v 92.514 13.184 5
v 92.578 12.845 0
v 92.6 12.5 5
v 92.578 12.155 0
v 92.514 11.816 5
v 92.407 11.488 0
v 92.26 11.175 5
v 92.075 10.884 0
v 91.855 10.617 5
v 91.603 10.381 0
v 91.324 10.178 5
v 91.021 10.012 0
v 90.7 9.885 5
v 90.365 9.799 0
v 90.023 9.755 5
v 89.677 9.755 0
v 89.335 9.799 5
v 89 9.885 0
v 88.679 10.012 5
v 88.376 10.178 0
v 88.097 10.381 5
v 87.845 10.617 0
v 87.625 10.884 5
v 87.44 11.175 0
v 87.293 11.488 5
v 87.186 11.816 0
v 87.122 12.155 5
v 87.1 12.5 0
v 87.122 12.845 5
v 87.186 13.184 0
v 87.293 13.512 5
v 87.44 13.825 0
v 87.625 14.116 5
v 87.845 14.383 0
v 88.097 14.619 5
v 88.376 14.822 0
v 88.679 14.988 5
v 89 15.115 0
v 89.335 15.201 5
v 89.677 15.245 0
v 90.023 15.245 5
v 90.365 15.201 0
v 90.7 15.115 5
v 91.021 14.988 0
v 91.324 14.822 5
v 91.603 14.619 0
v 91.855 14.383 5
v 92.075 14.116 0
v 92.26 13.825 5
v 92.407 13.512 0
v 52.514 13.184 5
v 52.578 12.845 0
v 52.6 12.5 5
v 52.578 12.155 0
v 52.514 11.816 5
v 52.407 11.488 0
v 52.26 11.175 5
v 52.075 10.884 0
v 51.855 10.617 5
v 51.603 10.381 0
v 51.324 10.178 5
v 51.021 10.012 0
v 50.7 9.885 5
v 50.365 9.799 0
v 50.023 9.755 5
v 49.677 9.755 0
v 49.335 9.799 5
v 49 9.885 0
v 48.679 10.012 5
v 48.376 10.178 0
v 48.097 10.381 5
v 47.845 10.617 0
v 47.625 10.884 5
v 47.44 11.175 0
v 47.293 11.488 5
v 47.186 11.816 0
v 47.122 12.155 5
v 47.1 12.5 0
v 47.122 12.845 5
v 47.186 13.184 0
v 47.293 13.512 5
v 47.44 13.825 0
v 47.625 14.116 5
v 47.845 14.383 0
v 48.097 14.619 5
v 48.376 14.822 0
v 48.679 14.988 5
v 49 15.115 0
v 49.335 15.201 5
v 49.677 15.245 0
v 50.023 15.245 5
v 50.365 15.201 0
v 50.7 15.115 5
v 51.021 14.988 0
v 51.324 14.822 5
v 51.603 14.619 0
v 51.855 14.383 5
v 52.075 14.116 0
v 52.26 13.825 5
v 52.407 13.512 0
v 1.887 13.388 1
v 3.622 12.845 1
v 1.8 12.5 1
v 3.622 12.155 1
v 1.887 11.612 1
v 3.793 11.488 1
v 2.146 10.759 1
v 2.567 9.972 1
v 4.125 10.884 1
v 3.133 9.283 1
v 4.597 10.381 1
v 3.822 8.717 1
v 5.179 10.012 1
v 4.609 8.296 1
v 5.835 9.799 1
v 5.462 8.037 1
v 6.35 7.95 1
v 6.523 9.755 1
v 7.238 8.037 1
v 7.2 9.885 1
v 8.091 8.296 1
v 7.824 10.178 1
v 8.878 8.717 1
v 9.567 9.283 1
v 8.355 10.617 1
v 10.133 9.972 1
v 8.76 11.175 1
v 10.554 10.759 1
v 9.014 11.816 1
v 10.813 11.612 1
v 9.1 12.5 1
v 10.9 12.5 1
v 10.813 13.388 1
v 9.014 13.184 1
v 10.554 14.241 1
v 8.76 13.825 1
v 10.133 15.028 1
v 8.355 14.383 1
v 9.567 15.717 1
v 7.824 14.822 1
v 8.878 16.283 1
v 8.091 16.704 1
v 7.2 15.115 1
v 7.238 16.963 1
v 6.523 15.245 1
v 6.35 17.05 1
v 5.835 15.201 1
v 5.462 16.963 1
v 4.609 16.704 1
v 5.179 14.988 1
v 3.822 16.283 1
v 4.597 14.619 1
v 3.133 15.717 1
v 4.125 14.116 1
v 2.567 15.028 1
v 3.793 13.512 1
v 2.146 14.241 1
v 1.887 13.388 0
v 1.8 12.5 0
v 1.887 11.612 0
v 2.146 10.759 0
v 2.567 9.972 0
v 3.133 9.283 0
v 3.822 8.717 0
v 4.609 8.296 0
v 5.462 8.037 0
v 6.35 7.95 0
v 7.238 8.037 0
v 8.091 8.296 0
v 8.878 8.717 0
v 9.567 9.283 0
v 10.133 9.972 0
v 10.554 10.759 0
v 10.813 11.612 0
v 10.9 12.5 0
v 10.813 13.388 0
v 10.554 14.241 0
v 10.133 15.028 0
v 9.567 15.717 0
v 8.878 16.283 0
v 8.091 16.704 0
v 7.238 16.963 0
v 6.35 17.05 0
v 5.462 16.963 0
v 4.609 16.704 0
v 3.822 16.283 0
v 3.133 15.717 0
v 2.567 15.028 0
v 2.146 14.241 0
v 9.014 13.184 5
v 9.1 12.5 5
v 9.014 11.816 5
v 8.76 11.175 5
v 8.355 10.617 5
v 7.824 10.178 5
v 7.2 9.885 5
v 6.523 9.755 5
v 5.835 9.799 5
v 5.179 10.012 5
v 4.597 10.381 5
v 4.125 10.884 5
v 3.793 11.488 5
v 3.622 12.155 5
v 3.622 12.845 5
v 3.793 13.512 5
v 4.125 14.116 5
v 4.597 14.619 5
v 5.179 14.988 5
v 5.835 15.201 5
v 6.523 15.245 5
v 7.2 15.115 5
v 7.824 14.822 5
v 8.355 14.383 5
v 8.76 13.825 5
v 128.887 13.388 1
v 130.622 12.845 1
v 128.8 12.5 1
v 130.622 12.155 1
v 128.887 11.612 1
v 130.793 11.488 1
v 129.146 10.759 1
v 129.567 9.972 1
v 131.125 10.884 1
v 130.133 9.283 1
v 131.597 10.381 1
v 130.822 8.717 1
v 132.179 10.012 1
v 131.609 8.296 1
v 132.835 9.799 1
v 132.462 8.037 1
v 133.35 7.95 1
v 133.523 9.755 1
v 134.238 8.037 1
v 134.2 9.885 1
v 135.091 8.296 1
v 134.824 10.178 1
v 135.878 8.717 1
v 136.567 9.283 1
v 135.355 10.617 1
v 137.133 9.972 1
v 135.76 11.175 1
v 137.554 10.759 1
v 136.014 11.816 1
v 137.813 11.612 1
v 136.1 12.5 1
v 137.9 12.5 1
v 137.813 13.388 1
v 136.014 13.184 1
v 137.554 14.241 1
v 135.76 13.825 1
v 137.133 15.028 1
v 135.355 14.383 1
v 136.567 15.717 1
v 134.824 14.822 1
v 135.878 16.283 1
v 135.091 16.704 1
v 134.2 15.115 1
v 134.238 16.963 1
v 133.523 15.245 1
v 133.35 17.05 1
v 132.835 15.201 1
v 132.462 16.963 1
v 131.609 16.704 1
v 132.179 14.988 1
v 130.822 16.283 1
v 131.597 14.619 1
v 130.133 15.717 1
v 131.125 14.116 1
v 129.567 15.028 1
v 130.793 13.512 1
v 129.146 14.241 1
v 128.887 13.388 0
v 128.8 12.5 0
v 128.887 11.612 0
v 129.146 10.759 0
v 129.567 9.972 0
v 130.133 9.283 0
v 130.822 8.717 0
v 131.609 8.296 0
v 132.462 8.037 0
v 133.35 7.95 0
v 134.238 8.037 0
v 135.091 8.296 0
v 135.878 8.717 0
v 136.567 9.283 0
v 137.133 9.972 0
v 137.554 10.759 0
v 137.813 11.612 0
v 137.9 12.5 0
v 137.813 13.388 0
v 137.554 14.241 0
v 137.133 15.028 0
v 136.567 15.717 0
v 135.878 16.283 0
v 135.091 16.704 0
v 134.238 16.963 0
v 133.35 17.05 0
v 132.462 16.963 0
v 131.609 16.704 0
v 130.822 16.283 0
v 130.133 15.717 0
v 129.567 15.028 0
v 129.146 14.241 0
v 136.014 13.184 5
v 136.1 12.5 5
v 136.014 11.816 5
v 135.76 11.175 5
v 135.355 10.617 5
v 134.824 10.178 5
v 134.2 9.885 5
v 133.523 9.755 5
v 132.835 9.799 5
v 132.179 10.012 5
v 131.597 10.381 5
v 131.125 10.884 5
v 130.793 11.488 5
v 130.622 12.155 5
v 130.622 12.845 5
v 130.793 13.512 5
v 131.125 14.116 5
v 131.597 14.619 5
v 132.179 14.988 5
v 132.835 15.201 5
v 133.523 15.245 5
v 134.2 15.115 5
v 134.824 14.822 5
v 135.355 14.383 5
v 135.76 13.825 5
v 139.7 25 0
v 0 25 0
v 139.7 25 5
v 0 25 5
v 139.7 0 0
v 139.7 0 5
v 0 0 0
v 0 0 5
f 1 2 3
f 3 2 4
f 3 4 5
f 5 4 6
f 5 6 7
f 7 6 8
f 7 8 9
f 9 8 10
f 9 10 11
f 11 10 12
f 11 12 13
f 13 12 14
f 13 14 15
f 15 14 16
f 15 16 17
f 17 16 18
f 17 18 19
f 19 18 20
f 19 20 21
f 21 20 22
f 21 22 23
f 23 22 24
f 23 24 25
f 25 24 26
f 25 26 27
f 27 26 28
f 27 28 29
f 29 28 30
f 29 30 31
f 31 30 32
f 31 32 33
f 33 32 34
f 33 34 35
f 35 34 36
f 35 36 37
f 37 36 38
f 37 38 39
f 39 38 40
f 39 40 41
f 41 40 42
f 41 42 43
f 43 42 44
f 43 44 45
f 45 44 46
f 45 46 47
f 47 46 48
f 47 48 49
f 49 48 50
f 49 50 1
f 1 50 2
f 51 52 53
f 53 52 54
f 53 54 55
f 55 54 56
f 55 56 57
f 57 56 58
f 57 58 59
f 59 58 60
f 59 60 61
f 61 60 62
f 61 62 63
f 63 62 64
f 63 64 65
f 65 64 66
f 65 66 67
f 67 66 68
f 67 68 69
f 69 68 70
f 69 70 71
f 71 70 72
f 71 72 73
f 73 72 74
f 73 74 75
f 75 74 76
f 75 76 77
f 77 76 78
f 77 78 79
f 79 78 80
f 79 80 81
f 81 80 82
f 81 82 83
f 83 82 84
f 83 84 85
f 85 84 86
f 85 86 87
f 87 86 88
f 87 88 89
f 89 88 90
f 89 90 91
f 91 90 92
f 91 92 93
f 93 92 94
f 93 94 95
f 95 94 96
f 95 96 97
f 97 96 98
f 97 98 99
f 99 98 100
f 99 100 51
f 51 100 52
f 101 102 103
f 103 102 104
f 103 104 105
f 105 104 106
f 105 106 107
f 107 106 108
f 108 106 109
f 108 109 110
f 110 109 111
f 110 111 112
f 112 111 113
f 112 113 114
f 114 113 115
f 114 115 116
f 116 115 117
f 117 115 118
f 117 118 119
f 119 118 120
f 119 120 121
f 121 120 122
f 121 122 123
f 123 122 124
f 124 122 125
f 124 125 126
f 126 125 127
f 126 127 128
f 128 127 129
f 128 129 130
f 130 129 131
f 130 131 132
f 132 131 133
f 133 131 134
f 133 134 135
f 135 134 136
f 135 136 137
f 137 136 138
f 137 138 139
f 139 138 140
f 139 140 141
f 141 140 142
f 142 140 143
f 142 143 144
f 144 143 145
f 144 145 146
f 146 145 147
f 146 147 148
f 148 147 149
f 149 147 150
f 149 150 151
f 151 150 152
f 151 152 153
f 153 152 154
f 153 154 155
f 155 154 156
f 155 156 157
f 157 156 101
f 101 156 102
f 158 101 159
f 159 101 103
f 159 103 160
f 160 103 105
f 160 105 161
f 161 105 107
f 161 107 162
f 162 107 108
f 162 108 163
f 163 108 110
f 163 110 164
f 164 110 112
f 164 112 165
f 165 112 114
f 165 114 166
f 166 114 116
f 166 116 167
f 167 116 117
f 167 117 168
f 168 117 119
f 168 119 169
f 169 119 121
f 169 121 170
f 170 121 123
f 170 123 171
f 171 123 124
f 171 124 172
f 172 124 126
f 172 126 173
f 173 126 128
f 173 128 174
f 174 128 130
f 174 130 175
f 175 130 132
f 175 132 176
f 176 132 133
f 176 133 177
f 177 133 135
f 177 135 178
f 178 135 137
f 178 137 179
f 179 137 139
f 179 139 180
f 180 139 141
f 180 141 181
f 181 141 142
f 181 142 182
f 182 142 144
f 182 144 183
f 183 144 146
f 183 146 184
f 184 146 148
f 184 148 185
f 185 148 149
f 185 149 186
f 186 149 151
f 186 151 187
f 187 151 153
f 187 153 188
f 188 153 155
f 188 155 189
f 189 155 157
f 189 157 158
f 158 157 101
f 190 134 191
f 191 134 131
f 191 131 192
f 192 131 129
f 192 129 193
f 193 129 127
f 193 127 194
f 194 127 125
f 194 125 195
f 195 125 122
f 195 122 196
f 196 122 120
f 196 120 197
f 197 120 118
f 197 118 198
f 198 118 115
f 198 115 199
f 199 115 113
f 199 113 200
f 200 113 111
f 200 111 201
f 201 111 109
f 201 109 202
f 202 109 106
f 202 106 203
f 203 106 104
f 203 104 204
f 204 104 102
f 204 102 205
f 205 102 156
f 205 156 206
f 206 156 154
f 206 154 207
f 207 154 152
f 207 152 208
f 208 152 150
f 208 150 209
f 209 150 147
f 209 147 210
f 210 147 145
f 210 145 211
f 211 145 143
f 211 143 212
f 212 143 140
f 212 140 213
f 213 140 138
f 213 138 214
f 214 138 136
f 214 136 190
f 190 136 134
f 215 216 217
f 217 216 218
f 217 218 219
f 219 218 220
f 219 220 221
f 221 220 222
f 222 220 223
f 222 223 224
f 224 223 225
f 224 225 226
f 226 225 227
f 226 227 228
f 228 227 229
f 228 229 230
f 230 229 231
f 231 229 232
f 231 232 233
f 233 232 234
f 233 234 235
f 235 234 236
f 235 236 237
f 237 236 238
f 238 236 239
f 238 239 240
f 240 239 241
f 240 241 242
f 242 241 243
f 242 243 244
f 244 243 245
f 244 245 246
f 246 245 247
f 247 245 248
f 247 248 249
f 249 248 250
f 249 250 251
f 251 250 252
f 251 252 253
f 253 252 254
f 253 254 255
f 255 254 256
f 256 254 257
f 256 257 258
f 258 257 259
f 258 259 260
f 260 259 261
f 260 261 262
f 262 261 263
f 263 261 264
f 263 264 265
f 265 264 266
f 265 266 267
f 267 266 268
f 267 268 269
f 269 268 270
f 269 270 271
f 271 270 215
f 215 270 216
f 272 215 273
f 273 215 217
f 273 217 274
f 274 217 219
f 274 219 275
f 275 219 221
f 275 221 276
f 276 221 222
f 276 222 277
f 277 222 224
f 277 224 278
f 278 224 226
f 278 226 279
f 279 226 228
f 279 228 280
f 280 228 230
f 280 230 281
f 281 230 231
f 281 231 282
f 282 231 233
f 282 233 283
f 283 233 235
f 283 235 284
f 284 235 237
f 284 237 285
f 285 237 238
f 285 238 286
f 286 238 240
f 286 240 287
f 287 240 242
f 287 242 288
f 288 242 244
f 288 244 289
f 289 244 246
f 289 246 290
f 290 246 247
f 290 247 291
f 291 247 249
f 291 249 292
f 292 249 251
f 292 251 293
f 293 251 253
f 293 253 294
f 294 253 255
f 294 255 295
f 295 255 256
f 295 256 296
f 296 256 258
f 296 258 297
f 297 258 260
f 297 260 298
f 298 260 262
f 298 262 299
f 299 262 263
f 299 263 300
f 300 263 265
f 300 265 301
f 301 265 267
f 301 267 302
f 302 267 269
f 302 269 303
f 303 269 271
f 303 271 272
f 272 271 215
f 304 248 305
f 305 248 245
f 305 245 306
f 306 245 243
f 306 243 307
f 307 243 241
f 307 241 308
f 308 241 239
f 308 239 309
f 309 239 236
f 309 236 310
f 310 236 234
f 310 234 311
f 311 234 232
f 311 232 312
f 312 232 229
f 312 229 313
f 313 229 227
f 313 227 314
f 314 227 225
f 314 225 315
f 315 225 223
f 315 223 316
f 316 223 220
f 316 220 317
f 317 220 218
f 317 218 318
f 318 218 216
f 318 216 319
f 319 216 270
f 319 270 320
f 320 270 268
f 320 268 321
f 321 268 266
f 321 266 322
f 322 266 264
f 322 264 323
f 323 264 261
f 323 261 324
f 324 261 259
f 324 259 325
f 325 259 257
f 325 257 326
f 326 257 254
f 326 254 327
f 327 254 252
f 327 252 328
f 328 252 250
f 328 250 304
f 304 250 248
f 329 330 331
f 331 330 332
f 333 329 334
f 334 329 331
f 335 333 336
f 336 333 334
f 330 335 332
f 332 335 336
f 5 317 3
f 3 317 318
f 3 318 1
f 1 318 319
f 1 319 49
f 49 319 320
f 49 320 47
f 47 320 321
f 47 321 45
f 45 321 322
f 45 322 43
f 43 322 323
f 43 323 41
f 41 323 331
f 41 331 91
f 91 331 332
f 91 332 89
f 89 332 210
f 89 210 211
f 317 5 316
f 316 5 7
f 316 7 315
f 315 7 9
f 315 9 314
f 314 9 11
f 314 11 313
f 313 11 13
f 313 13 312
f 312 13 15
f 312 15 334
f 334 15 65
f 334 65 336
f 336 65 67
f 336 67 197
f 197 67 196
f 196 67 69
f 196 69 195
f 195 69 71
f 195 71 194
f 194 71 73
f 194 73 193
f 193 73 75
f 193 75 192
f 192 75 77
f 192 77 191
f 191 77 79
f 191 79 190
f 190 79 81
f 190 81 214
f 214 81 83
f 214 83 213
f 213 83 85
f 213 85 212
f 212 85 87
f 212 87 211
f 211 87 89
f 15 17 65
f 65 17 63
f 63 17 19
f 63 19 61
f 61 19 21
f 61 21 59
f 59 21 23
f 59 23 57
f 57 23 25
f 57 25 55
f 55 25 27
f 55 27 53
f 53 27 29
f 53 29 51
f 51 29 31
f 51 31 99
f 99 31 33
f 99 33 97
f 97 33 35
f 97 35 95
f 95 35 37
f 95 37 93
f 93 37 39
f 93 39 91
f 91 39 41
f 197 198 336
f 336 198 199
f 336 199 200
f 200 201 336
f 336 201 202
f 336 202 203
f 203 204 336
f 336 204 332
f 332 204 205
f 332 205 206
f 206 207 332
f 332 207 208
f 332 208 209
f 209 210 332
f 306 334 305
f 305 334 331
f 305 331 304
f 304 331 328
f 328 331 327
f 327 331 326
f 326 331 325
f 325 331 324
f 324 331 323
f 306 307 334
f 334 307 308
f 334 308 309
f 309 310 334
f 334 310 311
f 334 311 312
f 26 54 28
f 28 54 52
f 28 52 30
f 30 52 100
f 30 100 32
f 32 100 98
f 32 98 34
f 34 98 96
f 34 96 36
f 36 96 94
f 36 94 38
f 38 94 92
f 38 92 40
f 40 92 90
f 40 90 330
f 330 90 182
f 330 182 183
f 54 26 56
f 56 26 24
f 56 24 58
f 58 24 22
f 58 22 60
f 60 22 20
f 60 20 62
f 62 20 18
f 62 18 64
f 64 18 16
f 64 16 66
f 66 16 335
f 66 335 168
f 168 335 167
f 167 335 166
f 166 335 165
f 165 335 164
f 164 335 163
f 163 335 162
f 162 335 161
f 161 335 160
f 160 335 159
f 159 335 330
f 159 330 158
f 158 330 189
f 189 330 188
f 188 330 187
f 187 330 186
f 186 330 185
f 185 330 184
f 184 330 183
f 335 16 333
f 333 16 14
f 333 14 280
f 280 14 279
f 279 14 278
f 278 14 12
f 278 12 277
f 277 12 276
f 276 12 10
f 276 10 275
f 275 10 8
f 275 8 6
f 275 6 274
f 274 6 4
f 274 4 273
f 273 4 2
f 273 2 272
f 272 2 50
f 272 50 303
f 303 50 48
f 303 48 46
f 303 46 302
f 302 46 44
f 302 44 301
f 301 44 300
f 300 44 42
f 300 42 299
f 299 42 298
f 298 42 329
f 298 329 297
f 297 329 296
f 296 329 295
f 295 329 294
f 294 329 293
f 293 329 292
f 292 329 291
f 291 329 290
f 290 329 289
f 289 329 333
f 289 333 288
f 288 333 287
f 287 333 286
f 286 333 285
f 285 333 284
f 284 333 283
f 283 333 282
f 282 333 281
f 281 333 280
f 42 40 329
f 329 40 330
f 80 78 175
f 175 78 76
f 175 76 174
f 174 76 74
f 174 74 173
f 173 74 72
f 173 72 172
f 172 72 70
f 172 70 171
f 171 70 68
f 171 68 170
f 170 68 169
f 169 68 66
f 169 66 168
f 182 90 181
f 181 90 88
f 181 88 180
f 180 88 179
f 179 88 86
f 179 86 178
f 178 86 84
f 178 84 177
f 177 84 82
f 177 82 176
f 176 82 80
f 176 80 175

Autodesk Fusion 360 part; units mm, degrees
sketch "Sketch1" plane through (0, 0, 0) normal (0, 0, 1) x (1, 0, 0)
  line L0 (0, 0) -> (139.7, 0)
  line L1 (139.7, 0) -> (139.7, 25)
  line L2 (139.7, 25) -> (0, 25)
  line L3 (0, 25) -> (0, 0)
  dimension "d1" = 139.7
  dimension "d2" = 25
extrude "Extrude1" add sketch "Sketch1" along normal blind 5
sketch "Sketch2" plane through (0, 0, 0) normal (0, 0, 1) x (1, 0, 0)
  point P0 (6.35, 12.5)
  point P1 (133.35, 12.5)
hole "Hole1" at (6.35, 12.5, 0) at (133.35, 12.5, 0) direction (0, 0, 1) diameter 5.5 depth 13 tip angle 118 counterbore diameter 9.1 counterbore depth 1
sketch "Sketch4" plane through (0, 0, 0) normal (0, 0, -1) x (1, 0, 0)
  circle A0 centre (6.35, -12.5) radius 4.55
  circle A1 centre (133.35, -12.5) radius 4.55
  line L0 (0, 0) -> (0, -25)
  line L1 (0, -25) -> (139.7, -25)
  line L2 (139.7, -25) -> (139.7, 0)
  line L3 (139.7, 0) -> (0, 0)
  point P0 (49.85, -12.5)
  point P1 (89.85, -12.5)
hole "Hole3" at (89.85, 12.5, 0) at (49.85, 12.5, 0) direction (0, 0, 1) diameter 5.5 depth 13 tip angle 118
